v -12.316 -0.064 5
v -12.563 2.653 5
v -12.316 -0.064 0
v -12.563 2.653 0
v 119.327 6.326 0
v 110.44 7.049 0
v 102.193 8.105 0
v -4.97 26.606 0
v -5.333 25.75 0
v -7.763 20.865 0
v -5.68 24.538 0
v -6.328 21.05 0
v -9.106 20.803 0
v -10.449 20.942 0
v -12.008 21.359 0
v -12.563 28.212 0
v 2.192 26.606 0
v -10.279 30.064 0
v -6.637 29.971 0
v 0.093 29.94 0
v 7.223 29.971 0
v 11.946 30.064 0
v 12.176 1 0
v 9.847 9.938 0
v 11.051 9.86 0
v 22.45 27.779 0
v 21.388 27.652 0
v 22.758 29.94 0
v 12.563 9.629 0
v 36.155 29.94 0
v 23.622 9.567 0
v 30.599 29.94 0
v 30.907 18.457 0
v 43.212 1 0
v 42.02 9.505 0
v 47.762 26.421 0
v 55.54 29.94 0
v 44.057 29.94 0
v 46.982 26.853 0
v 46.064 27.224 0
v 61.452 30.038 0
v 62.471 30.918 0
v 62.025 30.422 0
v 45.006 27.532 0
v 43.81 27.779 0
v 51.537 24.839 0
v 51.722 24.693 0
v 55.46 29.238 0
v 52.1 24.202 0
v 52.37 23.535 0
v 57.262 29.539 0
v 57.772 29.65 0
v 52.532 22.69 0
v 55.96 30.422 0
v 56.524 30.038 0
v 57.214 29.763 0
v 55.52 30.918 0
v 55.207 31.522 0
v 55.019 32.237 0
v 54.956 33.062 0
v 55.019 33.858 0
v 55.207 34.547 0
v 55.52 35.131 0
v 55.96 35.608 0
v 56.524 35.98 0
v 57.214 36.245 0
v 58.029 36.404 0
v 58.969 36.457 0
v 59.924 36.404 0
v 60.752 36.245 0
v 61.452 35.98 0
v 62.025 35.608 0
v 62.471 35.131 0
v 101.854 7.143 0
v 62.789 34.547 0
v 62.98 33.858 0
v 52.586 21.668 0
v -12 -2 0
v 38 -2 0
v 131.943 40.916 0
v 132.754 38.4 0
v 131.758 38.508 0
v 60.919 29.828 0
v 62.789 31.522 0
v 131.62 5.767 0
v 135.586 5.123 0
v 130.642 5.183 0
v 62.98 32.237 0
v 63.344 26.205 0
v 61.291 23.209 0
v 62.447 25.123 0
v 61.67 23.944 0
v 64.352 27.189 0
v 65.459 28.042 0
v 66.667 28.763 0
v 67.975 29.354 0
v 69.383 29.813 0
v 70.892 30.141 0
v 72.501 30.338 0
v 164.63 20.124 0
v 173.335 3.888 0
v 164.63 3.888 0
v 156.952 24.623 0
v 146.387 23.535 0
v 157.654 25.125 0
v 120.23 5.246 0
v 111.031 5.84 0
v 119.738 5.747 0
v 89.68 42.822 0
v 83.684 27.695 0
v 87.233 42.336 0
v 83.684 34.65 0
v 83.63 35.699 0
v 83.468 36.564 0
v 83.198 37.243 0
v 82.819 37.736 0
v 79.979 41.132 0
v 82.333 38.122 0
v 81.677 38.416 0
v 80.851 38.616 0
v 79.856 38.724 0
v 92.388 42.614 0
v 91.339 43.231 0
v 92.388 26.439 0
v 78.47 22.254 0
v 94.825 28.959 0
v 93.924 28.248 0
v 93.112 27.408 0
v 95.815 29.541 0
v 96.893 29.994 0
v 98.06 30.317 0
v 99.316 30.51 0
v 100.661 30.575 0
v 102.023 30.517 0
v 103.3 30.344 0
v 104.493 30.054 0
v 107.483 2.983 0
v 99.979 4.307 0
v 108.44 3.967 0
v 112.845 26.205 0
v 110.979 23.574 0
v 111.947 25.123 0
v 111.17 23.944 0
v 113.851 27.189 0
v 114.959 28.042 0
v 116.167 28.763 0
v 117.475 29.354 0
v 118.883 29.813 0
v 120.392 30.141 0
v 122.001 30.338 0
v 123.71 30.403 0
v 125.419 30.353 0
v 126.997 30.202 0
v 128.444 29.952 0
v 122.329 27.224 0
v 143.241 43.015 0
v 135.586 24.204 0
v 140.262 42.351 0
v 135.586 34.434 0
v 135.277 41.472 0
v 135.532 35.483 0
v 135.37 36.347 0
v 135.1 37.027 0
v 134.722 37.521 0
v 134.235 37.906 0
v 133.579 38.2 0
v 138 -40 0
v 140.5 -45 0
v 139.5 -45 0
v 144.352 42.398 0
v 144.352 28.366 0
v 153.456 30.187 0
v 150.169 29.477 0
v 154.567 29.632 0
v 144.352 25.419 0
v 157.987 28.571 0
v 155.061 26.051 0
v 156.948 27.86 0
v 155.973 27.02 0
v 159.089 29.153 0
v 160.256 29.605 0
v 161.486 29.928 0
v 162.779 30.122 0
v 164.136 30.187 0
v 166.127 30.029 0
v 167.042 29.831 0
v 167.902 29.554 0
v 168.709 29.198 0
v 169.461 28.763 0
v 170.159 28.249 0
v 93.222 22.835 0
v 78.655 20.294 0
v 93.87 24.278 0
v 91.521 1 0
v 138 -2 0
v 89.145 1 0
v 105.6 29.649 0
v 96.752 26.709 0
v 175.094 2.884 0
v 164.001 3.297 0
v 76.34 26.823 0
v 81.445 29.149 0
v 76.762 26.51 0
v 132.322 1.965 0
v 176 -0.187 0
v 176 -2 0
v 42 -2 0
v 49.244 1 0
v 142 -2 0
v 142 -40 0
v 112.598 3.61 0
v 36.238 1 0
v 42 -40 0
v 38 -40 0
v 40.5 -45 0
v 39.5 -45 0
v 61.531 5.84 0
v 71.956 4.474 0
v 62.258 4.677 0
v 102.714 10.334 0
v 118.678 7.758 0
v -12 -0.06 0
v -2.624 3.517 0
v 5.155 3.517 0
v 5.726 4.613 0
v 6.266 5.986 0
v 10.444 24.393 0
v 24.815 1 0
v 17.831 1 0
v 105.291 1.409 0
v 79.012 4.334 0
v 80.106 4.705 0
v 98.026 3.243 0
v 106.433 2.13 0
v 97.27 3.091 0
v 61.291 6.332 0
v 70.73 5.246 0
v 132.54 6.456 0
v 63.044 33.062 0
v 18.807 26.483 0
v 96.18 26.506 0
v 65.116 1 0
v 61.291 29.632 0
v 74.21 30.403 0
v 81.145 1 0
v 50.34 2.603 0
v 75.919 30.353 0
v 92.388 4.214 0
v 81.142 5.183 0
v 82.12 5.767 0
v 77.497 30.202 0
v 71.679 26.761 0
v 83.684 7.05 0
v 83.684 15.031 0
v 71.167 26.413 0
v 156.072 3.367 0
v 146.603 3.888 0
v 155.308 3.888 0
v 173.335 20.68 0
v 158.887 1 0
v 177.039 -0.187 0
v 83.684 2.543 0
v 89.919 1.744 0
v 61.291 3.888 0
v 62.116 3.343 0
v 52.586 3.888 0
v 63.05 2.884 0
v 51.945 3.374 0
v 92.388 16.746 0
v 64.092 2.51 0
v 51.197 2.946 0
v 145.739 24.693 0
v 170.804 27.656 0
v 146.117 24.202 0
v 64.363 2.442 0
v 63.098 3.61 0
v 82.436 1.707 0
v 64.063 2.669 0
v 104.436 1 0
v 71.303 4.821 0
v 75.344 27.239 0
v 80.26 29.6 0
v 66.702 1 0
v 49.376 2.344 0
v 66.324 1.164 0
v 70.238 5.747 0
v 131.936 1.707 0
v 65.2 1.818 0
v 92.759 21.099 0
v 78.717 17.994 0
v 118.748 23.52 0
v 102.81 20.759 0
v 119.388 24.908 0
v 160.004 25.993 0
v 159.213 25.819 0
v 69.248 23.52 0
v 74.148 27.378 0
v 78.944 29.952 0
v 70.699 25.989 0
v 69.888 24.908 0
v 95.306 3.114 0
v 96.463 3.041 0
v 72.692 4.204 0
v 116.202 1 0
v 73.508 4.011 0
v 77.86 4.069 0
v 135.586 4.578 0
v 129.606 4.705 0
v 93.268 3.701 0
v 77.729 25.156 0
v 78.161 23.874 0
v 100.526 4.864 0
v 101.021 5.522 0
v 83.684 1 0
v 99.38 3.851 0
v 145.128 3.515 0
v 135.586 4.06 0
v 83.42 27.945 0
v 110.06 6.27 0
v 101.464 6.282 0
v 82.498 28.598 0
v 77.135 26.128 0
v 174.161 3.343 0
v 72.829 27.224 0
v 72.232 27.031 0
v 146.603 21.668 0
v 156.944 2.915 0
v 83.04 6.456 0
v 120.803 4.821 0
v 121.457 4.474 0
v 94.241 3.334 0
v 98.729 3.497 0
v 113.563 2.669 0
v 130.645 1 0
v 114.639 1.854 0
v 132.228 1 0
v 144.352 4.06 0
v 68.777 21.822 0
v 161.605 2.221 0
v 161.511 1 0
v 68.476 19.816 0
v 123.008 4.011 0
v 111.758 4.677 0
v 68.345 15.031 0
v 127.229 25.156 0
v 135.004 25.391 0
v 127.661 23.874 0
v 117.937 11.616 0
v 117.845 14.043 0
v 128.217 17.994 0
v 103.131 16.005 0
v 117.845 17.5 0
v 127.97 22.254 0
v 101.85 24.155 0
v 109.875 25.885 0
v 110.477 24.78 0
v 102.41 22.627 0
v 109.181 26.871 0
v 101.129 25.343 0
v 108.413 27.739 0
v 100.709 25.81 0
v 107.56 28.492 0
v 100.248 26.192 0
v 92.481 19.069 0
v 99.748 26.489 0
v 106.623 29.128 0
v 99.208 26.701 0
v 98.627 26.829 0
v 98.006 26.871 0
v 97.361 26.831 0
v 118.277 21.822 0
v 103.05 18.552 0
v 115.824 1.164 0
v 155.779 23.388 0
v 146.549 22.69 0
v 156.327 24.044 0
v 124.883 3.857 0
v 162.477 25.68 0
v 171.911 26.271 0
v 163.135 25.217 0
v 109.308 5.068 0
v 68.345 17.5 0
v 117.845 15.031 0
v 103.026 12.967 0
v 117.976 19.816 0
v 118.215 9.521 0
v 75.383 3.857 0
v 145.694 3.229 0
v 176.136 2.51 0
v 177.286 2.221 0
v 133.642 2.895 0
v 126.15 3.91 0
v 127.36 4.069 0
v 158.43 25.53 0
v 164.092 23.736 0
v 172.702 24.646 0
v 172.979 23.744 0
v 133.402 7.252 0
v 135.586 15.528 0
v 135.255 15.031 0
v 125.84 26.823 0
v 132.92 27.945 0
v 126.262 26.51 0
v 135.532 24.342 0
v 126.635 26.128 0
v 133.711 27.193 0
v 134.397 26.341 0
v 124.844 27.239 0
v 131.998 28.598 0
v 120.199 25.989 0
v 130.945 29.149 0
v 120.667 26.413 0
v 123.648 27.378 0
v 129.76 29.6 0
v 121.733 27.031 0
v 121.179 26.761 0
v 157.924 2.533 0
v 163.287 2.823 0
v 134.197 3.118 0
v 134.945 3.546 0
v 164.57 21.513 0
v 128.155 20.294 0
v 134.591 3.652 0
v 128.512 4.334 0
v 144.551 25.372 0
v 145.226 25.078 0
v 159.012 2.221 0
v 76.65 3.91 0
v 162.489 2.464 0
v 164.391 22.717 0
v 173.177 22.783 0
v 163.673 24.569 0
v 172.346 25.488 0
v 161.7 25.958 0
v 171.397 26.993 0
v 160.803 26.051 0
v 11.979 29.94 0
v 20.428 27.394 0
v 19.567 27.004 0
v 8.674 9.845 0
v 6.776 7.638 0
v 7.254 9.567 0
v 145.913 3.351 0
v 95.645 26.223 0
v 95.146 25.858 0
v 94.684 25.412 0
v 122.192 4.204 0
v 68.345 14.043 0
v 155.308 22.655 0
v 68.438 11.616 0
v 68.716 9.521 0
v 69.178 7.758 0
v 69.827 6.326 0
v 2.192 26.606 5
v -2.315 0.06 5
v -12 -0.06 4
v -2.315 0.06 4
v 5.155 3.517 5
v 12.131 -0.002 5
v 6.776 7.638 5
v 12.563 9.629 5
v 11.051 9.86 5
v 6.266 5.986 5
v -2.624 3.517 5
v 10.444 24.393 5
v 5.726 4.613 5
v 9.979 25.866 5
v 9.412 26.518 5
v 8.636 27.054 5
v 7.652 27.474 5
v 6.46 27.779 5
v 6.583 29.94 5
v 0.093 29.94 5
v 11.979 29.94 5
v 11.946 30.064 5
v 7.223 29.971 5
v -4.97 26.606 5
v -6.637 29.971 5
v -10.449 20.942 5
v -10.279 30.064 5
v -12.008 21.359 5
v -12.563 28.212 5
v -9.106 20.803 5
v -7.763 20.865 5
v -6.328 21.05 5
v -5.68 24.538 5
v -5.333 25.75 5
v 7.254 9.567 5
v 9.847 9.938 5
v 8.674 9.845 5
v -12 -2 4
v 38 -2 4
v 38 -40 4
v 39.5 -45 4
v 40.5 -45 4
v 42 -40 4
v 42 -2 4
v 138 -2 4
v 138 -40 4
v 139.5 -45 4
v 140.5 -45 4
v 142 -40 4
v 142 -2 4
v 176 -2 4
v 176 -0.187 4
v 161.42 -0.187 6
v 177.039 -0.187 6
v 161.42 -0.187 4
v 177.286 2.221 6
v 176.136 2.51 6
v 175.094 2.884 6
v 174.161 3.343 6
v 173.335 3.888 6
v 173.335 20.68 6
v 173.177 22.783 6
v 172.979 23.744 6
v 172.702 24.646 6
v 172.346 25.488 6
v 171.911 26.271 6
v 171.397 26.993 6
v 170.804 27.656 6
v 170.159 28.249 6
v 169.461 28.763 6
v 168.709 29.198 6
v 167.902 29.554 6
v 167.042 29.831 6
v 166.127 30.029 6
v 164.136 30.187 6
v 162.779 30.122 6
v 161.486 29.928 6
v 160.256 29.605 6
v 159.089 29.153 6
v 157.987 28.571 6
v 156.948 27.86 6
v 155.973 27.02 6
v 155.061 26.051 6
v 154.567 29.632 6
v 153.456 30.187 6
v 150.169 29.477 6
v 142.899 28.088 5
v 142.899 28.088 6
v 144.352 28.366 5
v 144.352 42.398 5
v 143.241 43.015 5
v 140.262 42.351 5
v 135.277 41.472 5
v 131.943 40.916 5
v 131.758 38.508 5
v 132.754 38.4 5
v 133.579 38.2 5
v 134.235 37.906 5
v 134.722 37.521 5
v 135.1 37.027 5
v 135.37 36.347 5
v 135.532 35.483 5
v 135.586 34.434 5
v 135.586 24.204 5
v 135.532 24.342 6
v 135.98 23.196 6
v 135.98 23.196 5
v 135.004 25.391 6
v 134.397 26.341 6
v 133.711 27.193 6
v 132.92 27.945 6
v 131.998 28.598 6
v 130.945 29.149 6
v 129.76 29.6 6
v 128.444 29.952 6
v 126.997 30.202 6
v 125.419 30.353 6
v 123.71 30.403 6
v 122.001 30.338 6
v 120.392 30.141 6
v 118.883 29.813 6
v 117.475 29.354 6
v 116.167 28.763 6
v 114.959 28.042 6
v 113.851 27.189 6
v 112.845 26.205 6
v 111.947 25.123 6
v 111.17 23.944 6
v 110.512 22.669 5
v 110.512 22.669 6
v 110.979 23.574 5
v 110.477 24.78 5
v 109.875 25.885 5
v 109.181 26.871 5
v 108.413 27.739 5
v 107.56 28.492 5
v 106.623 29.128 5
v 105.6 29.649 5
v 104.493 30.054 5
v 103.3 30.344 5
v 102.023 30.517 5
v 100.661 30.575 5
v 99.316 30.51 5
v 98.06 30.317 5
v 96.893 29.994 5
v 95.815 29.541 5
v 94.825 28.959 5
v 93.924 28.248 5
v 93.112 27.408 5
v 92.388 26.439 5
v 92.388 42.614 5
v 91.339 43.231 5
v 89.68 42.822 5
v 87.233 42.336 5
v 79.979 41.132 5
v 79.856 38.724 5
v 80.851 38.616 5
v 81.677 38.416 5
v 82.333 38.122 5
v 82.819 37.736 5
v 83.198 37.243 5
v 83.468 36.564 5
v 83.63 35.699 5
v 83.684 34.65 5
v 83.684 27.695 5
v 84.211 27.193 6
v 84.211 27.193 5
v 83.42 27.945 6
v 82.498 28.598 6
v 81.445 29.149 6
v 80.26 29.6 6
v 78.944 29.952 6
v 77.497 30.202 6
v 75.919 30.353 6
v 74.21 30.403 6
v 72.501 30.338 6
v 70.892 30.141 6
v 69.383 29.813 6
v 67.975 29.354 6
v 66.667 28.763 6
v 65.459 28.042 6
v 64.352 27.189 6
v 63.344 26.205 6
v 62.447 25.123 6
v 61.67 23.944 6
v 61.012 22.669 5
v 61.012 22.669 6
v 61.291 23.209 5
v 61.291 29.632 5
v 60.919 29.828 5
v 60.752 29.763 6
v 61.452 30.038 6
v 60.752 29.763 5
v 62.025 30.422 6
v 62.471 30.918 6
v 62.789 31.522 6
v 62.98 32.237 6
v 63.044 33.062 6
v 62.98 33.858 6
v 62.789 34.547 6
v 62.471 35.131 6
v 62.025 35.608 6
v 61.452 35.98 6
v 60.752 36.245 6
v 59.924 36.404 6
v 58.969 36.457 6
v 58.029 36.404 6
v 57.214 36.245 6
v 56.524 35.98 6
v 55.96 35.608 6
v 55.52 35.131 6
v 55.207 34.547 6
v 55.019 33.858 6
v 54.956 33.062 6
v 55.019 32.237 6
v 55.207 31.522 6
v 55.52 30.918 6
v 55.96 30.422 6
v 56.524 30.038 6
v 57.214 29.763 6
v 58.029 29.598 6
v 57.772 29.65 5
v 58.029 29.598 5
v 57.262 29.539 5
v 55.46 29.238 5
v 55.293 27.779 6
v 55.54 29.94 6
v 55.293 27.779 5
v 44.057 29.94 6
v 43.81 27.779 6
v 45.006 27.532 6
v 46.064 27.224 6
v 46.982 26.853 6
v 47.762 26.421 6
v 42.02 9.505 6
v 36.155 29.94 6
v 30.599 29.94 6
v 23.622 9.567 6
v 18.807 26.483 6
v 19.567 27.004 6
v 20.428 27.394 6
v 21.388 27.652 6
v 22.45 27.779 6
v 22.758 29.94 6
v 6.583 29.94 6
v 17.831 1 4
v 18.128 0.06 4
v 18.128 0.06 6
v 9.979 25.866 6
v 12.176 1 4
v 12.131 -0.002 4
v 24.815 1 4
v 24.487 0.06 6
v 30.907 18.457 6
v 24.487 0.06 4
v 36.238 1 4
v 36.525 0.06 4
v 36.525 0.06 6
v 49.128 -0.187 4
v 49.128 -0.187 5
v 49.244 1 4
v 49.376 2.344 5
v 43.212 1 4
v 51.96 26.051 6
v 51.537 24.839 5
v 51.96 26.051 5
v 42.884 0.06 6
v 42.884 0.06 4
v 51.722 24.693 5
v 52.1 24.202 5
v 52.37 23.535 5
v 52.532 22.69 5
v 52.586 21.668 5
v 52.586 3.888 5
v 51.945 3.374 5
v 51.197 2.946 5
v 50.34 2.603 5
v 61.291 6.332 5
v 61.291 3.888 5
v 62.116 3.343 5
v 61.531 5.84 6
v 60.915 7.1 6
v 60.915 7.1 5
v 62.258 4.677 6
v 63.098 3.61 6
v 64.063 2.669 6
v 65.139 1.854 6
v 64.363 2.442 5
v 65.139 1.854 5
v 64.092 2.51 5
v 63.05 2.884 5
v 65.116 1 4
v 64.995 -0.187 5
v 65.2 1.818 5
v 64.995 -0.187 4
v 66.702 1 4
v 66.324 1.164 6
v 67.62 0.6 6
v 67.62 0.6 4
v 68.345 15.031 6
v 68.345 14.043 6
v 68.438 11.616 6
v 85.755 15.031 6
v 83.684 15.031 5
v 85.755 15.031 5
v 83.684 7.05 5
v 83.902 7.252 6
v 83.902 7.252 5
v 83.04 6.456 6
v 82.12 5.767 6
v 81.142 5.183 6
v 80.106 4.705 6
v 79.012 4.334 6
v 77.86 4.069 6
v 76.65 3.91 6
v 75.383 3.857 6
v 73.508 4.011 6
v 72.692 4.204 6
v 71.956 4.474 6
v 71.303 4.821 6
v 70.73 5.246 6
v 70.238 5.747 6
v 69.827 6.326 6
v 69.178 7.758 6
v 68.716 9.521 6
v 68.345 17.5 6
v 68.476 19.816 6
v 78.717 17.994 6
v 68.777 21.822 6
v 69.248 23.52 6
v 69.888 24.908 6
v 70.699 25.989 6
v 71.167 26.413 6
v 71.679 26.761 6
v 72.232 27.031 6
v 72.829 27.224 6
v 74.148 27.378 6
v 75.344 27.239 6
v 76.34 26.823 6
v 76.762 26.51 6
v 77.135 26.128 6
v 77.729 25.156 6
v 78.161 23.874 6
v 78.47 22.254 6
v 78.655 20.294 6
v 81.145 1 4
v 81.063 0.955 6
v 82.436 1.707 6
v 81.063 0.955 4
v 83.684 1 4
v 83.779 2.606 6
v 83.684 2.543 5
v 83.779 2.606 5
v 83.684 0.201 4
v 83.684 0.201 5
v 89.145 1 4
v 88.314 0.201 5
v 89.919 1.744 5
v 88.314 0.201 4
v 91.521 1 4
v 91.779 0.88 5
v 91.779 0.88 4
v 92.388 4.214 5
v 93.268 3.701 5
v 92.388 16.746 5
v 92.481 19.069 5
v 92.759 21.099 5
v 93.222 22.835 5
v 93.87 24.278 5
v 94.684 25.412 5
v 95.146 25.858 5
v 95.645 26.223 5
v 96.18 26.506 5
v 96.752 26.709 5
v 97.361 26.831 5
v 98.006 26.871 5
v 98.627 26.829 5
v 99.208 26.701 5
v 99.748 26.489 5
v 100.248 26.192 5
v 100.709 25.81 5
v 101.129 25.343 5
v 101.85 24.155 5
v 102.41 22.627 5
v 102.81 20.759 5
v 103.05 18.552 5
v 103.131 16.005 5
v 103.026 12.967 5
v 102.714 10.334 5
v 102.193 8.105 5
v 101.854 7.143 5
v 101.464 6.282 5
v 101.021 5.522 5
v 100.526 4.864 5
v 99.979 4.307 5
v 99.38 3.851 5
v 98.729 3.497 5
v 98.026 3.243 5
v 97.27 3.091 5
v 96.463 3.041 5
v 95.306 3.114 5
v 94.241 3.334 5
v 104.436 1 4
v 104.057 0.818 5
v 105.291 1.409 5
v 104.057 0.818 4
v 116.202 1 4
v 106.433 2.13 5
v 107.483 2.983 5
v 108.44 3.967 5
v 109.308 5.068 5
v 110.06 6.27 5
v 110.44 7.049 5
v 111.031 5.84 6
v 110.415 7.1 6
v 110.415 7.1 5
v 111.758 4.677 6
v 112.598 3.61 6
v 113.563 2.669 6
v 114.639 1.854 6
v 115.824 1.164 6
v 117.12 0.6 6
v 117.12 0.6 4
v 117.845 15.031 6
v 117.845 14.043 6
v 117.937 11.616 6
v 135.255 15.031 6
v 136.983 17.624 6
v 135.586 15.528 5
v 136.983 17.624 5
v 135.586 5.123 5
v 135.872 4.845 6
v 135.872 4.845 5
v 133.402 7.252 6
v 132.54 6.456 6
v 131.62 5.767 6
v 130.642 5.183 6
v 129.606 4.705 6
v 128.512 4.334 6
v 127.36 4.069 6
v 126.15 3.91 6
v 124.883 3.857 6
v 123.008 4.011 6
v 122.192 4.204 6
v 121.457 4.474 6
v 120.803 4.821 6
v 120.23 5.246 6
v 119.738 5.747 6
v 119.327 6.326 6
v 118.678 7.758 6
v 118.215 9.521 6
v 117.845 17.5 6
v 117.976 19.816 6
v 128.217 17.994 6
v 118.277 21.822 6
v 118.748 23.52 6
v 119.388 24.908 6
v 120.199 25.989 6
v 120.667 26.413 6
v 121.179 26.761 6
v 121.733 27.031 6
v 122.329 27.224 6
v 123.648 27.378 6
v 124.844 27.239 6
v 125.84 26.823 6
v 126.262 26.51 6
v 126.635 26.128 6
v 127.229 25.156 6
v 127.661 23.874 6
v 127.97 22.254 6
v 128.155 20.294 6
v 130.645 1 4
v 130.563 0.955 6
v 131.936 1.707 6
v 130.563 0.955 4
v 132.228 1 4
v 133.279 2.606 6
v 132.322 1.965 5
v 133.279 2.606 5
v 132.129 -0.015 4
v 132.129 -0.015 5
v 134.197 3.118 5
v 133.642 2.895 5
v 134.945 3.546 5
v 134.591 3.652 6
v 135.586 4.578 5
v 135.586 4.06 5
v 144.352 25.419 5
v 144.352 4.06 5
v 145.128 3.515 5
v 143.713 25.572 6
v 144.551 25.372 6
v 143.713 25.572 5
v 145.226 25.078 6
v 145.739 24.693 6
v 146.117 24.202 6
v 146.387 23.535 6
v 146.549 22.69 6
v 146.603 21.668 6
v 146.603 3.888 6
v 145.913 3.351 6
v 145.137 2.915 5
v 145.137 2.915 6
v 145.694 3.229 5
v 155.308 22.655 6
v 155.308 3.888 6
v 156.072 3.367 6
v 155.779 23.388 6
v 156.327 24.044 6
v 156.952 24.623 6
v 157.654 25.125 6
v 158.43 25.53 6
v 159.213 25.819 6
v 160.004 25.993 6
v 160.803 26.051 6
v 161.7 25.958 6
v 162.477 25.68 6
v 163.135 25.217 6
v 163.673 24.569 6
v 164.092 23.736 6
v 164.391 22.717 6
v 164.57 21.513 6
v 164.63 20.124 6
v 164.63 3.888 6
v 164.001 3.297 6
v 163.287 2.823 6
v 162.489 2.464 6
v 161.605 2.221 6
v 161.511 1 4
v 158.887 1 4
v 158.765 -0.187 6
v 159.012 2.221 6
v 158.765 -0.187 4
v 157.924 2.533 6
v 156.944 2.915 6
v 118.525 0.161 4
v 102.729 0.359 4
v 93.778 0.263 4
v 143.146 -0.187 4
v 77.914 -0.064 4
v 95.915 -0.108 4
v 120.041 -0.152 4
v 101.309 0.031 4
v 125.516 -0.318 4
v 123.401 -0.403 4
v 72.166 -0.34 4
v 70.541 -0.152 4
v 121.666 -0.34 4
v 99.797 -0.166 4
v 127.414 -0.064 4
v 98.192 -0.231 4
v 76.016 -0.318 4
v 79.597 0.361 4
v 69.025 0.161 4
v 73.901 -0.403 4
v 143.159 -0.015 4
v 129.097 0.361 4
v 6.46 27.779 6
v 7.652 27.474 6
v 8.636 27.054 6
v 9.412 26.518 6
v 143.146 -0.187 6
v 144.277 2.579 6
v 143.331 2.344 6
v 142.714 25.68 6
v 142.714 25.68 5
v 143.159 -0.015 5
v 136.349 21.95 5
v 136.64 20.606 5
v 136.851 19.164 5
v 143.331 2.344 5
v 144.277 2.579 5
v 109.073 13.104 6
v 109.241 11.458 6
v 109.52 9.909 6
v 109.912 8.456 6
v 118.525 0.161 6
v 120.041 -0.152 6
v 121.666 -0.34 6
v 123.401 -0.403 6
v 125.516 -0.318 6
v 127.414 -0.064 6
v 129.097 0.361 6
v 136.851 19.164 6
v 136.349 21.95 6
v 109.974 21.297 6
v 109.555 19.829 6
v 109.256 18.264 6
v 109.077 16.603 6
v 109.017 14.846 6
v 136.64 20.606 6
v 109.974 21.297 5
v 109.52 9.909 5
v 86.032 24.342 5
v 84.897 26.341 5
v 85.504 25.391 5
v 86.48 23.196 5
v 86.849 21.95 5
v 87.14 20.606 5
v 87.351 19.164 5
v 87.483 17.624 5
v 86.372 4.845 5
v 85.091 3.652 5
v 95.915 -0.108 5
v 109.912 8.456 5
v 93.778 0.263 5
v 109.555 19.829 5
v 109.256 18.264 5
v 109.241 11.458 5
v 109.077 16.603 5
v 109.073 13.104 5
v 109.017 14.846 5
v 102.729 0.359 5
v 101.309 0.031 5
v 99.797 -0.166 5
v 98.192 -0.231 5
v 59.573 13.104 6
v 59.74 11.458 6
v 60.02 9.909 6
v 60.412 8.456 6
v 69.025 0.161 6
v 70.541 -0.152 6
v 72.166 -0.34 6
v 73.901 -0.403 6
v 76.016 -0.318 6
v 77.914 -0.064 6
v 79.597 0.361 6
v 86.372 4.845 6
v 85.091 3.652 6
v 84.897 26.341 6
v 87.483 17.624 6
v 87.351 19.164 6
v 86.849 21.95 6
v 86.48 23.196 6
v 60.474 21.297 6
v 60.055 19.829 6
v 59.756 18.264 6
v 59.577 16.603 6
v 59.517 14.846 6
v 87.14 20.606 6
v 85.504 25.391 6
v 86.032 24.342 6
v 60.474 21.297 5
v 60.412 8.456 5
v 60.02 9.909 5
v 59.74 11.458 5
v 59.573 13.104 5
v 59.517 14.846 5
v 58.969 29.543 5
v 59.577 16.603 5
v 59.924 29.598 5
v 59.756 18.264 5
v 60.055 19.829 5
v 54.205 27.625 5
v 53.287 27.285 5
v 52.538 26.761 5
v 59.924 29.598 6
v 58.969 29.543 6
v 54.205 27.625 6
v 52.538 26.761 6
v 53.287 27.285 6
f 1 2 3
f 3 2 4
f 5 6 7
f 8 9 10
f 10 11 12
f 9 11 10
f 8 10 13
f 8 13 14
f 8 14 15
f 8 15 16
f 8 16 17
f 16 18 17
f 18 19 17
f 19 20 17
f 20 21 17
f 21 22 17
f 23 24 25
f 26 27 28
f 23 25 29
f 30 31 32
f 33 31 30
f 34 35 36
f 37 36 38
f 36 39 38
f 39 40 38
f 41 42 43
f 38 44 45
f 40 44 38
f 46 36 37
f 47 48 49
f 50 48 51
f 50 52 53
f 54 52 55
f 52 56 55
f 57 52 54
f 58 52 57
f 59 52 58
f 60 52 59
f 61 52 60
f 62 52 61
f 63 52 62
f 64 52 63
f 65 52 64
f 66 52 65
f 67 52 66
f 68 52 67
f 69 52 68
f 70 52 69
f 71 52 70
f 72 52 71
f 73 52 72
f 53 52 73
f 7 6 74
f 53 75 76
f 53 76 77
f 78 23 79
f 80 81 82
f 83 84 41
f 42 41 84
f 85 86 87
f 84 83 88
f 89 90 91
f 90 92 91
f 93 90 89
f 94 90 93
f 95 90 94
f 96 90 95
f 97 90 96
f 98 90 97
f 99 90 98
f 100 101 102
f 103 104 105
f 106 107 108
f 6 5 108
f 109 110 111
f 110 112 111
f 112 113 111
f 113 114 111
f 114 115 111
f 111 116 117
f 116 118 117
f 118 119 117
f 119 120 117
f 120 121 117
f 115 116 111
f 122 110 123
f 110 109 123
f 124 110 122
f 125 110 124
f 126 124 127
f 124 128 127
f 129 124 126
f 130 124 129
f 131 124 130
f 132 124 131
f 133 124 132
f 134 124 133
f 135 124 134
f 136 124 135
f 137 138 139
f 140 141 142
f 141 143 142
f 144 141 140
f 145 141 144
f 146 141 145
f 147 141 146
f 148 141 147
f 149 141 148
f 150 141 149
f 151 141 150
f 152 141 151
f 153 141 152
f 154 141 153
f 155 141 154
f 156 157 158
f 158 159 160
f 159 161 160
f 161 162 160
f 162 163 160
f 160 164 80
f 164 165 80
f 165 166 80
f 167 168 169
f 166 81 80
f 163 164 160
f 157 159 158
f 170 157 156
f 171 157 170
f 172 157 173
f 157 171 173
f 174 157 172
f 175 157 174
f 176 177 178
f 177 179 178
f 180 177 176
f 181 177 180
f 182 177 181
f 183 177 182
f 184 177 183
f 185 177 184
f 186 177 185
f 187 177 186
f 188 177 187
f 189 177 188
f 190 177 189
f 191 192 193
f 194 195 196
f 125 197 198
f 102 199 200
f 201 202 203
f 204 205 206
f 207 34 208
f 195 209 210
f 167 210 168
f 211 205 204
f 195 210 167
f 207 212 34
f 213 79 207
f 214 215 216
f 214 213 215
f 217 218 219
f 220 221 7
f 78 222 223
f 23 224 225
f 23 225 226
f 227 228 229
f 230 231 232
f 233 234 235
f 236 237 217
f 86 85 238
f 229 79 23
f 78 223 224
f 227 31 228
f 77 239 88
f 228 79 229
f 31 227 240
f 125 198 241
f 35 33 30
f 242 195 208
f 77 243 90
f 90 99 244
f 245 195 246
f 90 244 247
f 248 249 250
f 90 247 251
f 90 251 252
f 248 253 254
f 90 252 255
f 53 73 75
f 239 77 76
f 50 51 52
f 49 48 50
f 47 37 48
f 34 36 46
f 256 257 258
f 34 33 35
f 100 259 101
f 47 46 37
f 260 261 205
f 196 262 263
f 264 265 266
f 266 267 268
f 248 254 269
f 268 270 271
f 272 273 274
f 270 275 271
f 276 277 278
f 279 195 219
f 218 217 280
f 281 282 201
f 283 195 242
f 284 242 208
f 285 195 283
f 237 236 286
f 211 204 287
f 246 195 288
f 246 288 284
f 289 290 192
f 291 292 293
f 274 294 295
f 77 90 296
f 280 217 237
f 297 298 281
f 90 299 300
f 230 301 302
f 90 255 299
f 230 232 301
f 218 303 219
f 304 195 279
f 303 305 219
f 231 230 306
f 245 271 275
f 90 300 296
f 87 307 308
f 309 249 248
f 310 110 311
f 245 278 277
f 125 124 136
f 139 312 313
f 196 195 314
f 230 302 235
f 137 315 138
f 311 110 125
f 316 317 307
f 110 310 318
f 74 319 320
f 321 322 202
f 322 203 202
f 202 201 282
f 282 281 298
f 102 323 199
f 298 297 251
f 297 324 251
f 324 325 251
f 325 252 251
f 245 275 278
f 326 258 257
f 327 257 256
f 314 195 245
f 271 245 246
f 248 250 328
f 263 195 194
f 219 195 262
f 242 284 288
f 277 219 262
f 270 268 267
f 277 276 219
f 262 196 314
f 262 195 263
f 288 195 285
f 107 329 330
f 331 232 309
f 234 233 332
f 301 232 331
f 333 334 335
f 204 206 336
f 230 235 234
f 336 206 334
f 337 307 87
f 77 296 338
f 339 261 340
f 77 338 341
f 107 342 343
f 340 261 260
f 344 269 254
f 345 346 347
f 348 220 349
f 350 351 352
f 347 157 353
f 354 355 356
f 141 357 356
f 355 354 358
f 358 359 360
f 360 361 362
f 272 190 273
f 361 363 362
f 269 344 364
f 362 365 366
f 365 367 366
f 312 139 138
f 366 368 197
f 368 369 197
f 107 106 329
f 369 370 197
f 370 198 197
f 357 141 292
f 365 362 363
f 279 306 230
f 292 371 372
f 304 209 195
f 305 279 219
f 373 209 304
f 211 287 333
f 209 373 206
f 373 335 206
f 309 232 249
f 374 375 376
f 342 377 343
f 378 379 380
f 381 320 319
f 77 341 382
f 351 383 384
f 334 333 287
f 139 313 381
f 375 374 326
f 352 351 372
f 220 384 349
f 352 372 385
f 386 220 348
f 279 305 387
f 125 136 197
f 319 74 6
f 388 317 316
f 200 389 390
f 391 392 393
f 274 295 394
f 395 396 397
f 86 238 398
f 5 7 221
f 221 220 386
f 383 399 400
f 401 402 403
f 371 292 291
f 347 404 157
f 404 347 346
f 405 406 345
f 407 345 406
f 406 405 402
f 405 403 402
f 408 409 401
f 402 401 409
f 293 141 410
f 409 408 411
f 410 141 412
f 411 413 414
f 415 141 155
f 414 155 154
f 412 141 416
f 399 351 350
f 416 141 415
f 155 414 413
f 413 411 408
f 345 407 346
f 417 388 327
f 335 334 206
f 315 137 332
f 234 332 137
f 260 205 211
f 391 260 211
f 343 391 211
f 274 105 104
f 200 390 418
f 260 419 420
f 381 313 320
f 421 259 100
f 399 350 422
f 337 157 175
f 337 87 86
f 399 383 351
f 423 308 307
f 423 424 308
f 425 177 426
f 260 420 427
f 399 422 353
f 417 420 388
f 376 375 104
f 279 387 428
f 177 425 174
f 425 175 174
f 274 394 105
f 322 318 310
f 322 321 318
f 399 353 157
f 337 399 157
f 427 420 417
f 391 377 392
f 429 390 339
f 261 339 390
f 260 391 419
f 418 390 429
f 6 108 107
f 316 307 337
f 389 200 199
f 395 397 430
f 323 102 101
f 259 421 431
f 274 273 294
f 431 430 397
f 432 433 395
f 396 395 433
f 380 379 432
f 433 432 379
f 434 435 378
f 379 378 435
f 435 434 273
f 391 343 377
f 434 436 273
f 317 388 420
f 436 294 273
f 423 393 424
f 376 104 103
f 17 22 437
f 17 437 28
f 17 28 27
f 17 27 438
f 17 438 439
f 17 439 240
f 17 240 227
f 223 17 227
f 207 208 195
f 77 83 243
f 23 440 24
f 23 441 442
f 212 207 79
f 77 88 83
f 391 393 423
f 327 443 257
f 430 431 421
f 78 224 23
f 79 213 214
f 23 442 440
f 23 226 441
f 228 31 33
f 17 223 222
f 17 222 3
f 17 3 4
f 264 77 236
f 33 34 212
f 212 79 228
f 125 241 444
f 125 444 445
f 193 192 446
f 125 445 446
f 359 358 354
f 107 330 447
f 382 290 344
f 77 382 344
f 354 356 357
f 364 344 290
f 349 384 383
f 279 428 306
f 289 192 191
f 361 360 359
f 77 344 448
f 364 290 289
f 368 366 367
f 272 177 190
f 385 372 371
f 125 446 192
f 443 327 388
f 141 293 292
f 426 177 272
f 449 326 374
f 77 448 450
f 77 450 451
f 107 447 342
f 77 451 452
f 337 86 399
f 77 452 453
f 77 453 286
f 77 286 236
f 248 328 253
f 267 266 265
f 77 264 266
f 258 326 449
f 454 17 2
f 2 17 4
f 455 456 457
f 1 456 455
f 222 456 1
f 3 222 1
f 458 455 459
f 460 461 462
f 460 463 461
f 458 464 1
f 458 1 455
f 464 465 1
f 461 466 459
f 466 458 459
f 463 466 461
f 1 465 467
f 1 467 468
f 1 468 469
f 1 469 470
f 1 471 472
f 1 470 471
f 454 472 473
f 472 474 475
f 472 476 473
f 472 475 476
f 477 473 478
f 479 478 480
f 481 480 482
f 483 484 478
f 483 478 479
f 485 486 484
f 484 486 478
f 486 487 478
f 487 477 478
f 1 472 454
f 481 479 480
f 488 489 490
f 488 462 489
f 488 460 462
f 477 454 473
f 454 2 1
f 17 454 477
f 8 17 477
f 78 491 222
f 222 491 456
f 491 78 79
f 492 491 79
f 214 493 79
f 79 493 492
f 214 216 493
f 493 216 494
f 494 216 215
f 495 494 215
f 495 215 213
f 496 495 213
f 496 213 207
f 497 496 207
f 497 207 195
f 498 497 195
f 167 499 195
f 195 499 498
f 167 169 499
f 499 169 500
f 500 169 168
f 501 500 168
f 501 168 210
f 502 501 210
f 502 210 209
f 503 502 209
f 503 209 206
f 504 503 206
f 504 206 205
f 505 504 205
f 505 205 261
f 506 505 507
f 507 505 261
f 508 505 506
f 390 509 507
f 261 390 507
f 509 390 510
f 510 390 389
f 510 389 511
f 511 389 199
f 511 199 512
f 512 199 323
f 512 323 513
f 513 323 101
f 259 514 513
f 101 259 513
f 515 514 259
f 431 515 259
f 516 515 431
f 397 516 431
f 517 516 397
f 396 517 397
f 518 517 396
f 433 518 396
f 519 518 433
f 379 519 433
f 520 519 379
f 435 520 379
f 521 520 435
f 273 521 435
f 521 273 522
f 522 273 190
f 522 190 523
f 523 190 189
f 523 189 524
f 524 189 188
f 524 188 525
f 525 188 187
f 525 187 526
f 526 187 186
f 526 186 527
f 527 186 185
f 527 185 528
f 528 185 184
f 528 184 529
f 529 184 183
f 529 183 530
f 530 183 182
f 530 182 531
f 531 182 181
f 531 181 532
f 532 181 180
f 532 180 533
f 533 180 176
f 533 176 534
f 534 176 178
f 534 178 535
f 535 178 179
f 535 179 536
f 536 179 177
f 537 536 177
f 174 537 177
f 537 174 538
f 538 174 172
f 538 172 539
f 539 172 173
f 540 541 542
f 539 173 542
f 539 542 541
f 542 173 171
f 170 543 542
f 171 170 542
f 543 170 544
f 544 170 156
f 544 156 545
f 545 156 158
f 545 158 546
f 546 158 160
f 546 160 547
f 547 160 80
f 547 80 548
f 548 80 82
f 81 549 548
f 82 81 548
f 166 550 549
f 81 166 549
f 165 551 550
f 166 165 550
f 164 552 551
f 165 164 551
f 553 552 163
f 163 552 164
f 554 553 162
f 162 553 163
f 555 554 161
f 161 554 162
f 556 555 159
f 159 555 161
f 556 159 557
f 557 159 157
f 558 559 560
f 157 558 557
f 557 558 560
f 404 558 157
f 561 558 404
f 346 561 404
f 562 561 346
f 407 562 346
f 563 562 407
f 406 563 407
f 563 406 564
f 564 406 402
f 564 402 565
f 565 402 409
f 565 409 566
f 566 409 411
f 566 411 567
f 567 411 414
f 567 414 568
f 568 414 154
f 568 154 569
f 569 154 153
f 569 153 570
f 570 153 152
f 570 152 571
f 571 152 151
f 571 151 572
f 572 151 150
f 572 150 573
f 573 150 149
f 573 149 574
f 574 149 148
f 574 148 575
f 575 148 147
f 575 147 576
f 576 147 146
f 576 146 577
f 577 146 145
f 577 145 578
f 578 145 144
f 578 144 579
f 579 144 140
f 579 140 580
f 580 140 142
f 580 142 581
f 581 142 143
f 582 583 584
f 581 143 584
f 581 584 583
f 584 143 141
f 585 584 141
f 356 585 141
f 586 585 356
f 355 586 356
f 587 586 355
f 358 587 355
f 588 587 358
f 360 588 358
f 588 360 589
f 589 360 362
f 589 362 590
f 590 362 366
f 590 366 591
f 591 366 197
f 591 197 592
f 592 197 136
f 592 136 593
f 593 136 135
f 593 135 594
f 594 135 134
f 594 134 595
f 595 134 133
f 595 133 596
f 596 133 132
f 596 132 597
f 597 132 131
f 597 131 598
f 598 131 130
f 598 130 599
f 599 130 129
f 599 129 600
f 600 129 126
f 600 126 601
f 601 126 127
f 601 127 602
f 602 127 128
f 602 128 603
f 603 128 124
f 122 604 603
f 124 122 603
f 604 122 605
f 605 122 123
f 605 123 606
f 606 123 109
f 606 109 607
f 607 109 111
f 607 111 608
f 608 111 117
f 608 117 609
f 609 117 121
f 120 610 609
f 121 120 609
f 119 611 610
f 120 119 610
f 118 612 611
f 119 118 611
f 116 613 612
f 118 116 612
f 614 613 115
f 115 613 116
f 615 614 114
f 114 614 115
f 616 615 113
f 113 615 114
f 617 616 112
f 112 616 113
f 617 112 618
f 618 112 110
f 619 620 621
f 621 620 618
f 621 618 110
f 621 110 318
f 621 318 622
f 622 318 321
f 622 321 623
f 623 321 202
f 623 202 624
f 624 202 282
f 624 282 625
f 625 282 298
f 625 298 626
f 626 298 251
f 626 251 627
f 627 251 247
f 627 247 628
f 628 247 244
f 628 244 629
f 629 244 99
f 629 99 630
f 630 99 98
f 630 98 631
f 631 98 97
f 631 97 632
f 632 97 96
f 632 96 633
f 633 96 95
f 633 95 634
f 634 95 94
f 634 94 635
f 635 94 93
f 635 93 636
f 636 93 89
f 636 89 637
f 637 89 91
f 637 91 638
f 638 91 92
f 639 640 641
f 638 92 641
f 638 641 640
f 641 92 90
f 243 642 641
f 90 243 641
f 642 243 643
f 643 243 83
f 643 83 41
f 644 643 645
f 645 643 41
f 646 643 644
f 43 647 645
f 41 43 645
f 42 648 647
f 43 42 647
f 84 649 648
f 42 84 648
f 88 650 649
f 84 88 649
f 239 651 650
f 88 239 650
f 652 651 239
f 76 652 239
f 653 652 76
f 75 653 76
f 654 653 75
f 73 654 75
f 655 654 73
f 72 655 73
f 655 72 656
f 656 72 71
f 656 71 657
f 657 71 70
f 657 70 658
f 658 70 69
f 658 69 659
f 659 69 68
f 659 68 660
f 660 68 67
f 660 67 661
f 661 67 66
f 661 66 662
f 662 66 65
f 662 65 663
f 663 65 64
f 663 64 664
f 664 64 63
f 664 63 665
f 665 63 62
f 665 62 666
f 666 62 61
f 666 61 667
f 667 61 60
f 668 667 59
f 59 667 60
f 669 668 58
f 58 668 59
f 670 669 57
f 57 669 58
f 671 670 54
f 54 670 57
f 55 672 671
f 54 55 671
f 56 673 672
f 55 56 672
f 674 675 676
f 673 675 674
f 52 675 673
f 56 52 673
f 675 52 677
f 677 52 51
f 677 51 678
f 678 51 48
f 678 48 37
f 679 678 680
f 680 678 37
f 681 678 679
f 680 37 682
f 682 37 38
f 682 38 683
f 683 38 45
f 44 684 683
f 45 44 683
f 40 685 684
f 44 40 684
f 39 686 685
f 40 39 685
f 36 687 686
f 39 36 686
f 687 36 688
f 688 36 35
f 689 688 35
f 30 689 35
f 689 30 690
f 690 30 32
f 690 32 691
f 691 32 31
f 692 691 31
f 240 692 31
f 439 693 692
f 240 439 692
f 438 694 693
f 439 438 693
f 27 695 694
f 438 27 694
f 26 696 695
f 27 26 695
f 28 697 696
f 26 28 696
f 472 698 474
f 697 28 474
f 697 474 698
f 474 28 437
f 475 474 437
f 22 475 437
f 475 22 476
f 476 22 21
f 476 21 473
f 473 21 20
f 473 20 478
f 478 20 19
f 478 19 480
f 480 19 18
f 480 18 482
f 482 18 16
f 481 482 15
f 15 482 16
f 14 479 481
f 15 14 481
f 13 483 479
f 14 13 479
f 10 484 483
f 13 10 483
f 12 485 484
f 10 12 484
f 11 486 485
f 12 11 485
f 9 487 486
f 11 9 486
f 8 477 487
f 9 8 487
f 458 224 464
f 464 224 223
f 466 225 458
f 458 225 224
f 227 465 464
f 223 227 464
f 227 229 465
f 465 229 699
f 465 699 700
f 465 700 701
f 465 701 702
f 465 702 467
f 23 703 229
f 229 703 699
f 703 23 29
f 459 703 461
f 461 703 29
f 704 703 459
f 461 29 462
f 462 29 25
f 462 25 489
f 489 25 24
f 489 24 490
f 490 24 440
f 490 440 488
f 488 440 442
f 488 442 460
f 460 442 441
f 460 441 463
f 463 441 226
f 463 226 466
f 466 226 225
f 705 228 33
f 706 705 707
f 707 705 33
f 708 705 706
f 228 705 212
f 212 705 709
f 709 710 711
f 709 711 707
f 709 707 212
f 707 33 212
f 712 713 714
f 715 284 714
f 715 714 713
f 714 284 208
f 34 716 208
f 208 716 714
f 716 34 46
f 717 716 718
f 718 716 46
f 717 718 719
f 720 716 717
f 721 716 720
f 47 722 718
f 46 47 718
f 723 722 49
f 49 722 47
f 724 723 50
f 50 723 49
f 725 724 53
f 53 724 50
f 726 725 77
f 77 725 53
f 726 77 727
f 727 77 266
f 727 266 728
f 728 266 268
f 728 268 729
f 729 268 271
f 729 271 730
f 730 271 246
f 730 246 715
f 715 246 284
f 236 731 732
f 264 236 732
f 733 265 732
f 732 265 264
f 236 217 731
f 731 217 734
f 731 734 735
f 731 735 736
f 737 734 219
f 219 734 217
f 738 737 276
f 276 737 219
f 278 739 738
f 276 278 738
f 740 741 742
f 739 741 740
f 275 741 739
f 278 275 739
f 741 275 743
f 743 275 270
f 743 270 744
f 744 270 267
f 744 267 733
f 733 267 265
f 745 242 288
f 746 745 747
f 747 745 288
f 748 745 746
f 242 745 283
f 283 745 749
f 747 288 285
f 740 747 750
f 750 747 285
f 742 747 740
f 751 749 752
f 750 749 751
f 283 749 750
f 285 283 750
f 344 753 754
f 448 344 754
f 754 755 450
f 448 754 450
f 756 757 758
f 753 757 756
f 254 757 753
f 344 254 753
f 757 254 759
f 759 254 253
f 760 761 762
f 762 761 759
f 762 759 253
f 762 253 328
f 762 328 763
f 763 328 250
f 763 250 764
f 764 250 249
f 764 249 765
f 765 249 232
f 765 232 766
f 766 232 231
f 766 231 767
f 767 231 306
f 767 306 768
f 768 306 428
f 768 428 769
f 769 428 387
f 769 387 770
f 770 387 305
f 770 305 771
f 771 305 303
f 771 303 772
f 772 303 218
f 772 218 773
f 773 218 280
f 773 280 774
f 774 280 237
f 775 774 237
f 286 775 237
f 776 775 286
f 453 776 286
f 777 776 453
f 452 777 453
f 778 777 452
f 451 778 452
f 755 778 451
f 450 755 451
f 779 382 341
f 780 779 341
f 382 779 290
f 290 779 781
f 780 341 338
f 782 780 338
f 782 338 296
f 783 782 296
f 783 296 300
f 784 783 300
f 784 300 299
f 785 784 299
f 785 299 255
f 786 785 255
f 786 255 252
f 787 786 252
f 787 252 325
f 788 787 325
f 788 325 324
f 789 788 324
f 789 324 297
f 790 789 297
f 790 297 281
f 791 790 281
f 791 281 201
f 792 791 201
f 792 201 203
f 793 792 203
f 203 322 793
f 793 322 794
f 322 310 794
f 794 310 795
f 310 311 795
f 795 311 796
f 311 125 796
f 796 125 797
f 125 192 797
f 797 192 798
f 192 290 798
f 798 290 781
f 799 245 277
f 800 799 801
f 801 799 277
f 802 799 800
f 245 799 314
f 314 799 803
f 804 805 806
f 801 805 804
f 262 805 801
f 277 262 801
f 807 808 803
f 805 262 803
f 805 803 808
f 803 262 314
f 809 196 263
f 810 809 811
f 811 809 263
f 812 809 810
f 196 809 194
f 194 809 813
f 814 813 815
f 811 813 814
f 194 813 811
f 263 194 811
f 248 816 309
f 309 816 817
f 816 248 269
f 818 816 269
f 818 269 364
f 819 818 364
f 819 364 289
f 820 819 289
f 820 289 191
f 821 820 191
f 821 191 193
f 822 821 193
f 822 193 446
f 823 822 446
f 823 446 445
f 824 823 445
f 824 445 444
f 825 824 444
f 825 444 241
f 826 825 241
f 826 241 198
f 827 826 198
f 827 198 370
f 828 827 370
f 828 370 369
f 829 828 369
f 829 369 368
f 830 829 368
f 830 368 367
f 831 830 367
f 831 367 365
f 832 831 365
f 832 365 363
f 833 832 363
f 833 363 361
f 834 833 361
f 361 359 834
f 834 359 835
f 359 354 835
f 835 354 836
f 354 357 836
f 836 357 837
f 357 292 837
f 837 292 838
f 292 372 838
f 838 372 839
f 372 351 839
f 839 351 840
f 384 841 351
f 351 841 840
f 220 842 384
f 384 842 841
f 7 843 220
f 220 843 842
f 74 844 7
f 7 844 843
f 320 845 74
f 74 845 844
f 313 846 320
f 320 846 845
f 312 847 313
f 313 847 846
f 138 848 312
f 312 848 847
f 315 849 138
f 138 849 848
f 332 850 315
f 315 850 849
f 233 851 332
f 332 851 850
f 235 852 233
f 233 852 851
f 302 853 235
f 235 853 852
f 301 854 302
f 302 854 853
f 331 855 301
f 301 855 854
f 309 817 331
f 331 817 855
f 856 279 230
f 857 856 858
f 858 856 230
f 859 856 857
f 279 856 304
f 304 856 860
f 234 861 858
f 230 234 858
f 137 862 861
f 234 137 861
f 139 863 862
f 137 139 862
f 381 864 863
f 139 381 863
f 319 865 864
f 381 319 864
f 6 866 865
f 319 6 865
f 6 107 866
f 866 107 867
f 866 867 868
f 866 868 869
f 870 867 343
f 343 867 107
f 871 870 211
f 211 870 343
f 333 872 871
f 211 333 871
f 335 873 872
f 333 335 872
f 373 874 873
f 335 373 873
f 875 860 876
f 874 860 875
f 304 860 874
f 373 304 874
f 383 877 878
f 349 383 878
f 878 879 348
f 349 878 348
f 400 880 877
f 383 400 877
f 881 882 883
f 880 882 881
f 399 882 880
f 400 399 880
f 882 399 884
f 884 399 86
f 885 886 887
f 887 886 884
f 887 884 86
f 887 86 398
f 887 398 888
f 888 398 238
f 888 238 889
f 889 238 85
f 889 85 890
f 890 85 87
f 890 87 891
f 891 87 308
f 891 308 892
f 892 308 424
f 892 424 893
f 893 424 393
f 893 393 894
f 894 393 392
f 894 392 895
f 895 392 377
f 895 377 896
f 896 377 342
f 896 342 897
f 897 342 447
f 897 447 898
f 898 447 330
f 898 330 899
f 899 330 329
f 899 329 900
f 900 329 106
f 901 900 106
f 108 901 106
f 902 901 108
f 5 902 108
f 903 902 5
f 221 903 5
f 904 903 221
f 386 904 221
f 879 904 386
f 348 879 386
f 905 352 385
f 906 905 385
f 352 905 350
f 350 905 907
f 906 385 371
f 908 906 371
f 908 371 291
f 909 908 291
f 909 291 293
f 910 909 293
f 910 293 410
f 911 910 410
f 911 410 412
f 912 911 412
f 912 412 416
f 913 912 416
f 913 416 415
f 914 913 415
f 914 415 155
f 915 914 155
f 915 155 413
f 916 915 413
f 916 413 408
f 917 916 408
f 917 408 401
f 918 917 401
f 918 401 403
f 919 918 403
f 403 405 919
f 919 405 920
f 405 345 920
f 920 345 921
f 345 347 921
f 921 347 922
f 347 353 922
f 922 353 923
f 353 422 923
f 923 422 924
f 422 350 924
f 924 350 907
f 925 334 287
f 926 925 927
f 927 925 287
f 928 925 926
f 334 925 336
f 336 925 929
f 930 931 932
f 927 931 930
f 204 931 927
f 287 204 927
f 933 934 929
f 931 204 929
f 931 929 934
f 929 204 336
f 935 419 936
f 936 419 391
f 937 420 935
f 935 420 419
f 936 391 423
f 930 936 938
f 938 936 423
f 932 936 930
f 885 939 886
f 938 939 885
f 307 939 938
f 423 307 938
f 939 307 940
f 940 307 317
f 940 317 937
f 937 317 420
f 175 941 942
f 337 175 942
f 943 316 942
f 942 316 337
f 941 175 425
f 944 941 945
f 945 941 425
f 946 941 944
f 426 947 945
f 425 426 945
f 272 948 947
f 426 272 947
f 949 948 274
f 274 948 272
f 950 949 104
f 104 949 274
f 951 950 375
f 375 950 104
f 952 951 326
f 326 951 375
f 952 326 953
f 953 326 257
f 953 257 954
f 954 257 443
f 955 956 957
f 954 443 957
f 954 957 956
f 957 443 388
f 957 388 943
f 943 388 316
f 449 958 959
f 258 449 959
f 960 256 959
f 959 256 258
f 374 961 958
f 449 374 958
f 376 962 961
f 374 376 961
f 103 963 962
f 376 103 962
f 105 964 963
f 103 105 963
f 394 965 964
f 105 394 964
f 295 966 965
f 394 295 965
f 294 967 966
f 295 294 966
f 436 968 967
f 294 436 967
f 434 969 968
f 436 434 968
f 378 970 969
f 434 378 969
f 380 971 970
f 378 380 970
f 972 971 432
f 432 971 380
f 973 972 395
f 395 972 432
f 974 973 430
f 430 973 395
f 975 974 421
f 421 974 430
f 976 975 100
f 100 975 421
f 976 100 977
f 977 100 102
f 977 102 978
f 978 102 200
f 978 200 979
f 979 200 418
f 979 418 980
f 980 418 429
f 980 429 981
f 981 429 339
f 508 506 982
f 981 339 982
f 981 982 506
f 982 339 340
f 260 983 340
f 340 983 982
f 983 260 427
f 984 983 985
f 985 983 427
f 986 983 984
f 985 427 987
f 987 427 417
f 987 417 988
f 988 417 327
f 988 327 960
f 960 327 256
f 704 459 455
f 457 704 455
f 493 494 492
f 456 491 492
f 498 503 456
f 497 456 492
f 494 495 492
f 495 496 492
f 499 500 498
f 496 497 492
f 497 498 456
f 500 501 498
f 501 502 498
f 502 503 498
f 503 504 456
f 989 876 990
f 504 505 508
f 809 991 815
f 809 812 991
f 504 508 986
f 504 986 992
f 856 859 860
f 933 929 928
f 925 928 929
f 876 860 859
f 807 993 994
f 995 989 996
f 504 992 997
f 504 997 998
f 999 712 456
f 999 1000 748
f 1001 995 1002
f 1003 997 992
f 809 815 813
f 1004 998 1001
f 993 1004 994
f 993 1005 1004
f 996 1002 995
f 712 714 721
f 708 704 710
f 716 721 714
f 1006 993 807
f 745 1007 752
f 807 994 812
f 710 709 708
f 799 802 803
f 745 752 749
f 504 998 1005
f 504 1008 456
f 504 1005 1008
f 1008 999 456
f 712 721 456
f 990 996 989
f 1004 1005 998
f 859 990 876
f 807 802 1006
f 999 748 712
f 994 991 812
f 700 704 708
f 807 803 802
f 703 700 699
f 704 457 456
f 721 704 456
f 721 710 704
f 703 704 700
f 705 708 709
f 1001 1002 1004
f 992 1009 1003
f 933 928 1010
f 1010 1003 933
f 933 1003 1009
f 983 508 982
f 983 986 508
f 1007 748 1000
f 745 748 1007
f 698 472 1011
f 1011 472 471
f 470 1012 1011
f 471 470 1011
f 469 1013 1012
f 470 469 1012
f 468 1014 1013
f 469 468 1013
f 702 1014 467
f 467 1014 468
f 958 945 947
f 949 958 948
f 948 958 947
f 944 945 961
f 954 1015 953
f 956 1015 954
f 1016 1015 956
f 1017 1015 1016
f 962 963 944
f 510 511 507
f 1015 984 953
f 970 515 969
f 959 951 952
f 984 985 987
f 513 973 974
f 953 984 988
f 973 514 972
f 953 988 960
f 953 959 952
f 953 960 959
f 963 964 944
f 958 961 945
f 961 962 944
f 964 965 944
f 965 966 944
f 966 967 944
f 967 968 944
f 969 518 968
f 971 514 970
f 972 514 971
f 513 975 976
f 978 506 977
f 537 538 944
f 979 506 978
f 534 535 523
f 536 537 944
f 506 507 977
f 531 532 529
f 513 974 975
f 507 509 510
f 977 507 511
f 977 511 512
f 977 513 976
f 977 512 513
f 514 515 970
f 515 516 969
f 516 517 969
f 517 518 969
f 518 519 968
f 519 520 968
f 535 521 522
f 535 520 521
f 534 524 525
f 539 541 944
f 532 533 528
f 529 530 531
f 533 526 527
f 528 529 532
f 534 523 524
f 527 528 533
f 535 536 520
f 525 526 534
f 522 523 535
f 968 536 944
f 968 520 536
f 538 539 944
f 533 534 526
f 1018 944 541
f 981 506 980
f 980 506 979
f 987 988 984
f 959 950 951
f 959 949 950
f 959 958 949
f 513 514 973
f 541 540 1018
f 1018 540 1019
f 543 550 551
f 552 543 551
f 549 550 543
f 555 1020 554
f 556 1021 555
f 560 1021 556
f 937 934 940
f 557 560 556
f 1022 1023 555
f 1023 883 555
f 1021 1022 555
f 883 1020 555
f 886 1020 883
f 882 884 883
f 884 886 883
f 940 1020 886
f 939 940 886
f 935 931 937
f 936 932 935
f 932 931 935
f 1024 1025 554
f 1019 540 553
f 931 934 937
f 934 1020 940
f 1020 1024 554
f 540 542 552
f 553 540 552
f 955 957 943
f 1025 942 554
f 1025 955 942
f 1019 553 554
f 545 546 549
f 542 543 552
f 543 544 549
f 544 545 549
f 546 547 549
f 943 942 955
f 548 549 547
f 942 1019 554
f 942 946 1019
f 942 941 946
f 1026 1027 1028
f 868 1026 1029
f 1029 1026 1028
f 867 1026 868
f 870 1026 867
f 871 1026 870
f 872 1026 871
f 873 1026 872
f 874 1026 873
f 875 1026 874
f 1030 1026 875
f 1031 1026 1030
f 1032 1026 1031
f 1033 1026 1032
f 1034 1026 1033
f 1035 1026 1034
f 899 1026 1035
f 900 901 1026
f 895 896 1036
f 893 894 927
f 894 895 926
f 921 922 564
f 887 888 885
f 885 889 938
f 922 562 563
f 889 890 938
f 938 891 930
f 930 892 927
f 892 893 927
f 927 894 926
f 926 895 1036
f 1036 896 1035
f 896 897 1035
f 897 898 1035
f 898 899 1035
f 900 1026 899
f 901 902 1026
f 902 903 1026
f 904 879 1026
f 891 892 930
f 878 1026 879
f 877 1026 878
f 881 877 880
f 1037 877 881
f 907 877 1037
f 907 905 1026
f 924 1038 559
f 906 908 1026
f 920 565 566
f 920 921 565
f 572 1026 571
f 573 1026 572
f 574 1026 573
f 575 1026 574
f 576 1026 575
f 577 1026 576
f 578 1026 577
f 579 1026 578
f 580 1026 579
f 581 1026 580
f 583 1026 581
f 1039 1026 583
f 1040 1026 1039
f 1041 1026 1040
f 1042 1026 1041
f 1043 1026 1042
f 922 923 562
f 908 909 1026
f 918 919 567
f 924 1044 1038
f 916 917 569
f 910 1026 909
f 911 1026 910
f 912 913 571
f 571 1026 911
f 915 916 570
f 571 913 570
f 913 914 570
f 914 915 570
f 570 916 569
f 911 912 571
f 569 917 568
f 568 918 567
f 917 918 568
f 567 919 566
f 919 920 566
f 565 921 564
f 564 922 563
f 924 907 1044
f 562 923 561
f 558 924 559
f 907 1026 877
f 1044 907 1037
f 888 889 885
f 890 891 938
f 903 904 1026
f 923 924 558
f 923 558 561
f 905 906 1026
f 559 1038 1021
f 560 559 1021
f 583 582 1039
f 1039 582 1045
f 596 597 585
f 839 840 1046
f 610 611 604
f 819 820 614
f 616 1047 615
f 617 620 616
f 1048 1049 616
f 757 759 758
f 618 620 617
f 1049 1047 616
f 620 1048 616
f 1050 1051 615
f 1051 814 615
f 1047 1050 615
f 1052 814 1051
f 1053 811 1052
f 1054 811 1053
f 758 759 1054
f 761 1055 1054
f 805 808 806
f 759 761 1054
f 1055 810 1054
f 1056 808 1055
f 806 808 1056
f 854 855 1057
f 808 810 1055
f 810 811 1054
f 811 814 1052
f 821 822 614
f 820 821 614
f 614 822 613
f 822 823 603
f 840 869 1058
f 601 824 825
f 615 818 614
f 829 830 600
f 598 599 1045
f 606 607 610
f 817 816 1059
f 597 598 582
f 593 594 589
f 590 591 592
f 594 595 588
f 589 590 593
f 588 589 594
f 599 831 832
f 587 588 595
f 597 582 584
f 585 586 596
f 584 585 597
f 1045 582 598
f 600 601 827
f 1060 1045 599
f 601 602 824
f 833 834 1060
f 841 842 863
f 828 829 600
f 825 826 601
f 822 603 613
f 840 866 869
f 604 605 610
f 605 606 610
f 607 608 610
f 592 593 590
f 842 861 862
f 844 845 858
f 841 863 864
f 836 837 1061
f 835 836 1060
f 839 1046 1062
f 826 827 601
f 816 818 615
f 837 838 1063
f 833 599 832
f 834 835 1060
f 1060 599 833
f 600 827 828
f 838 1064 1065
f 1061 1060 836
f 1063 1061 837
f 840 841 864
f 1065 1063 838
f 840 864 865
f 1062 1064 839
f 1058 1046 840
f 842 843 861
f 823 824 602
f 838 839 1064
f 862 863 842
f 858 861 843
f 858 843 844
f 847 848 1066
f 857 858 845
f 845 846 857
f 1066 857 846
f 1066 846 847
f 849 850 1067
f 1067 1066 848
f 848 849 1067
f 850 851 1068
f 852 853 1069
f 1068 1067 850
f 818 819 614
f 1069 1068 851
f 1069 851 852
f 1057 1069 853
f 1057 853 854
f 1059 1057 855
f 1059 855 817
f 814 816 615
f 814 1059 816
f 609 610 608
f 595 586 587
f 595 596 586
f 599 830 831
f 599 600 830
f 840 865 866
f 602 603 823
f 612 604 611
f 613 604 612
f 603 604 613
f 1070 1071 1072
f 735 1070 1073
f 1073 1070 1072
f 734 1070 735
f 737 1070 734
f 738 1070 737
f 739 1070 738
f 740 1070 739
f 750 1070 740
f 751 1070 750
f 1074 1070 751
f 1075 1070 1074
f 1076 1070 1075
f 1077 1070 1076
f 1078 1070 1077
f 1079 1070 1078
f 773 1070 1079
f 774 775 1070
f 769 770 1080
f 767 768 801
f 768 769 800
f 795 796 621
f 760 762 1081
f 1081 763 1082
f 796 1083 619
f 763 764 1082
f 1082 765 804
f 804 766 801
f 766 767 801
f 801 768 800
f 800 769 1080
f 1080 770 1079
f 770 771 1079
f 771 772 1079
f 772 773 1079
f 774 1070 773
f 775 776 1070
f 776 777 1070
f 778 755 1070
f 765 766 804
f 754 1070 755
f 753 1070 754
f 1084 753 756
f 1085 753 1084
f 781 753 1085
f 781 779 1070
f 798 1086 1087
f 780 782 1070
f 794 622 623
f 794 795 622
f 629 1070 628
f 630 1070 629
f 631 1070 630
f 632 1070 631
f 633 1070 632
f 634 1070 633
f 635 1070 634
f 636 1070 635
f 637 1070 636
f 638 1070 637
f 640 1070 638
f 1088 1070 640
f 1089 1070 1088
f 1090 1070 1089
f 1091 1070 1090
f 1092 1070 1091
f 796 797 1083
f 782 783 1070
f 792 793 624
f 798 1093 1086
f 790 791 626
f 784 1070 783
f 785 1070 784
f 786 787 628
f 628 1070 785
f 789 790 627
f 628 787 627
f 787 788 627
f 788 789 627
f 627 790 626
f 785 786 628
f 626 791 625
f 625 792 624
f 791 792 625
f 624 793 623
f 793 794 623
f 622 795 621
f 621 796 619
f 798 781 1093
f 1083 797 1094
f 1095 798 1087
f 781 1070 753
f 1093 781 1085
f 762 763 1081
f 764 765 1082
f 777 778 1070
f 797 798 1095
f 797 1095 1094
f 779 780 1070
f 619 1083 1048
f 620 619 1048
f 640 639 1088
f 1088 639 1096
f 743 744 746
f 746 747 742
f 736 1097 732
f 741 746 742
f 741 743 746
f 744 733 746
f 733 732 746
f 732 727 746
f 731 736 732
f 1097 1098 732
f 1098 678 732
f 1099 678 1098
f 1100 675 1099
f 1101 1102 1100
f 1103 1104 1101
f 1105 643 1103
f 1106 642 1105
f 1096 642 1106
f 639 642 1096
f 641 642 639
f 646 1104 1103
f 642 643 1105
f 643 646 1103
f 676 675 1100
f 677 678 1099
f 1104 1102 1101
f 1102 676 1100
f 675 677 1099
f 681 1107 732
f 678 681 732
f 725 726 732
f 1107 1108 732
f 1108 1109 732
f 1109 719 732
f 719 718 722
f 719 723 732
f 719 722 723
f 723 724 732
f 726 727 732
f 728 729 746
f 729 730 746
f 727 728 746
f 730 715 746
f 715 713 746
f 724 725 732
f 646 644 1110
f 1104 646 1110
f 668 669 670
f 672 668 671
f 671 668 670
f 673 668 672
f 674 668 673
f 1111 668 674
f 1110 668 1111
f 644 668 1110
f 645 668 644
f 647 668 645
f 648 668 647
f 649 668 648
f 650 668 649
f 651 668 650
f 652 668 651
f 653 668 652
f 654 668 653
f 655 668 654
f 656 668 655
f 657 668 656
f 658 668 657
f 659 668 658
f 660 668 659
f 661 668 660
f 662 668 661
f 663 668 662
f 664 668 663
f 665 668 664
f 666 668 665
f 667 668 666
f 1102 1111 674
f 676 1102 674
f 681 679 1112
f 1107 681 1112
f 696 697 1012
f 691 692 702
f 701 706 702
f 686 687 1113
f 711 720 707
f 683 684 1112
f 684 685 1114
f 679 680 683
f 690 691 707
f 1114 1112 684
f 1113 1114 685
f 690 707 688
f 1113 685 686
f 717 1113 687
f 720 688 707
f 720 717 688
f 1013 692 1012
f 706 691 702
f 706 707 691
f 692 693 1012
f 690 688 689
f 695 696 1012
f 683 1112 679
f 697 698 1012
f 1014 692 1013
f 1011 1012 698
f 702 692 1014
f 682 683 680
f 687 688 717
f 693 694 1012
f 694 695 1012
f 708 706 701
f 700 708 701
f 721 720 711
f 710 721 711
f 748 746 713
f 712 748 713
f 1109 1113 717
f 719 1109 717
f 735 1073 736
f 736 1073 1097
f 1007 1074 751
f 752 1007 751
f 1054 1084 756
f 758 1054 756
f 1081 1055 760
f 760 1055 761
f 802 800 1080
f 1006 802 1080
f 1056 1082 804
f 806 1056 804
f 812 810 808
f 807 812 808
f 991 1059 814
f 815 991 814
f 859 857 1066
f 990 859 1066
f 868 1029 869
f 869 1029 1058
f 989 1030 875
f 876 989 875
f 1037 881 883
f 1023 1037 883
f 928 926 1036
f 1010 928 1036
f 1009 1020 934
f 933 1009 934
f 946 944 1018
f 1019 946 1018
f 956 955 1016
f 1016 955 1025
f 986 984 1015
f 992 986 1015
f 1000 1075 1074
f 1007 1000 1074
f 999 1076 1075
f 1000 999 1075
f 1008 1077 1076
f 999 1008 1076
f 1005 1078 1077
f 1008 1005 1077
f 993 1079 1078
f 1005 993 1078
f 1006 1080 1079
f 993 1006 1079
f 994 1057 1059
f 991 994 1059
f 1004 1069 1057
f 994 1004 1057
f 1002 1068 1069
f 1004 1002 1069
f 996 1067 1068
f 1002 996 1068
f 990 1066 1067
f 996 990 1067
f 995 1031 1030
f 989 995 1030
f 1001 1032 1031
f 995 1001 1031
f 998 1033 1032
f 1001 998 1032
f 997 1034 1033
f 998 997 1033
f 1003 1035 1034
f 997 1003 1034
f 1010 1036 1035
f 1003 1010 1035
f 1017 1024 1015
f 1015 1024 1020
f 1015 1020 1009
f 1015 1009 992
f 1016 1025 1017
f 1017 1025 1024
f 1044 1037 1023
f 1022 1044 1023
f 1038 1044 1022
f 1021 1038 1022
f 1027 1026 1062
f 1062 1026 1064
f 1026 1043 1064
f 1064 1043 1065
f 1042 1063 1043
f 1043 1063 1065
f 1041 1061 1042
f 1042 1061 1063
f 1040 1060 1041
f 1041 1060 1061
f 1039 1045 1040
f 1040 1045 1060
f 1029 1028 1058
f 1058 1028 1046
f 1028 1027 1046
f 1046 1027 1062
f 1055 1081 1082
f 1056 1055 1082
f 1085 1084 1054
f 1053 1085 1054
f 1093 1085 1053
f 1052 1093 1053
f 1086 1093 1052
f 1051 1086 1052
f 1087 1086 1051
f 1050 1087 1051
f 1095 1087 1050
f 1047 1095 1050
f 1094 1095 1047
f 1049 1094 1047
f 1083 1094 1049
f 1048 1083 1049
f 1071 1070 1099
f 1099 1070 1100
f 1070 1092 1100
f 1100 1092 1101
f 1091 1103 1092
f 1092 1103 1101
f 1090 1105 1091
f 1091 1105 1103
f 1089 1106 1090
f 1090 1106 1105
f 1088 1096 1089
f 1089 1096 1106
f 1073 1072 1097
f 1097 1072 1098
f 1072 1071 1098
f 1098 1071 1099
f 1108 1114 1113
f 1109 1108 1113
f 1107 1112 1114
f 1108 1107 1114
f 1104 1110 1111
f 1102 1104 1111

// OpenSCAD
fudge = 0.1;


include <letters.scad>;

module nail(l,w,h){
	hull(){
	translate([-w/2,5,0]) cube([w,l,h]);
	translate([-0.5,0,0]) cube([1,1,h]);
	}
}

translate([0,15,0]) letter_z(5);
translate([31,15.0,0]) letter_w(6);
translate([57,15,0]) letter_i(5);
translate([59,33,0]) dot(6);
translate([73.5,15.0,0]) letter_e(6);
translate([96,21.5,0]) letter_b(5);
translate([123,15.0,0]) letter_e(6);
translate([140,21.5,0]) letter_l(5);
translate([160,15.0,0]) letter_n(6);

translate([-12,-2,0]) cube([188,3,4]);

translate([40,-45,0]) nail(40,4,4);
translate([140,-45,0]) nail(40,4,4);	
